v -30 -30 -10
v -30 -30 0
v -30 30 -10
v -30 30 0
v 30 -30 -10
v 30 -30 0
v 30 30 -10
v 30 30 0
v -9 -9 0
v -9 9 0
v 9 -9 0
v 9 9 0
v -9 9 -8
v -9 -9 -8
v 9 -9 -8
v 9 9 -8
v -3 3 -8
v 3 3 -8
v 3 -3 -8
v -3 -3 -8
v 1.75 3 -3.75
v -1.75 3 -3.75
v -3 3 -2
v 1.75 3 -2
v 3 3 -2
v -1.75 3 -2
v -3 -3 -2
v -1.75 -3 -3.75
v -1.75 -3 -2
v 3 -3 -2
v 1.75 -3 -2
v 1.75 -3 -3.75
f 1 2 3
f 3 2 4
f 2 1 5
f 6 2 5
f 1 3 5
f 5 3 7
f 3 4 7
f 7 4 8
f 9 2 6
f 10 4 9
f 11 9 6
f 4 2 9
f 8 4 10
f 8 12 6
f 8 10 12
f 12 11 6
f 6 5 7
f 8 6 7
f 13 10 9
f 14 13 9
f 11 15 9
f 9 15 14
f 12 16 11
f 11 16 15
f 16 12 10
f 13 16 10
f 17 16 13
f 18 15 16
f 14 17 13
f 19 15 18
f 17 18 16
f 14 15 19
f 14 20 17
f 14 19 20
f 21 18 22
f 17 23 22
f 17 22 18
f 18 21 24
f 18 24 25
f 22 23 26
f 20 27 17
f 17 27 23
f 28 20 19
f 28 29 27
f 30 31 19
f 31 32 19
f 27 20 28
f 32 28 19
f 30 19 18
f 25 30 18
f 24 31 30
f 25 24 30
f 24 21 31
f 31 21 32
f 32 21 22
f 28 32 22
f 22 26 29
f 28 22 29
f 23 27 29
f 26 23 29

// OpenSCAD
cube_h = 6;
top_clearance = 2;
feature_w = 3.5;
base_w = cube_h * 10;
base_h = 2*top_clearance+cube_h;
void_w = cube_h * 3;

color("blue")
    mould();
color("red")
    object();

module object()
{
    translate([0,0,-cube_h/2-top_clearance])
    {
        difference()
        {
            cube(cube_h,center=true);
            translate([0,0,cube_h/2])
            cube([feature_w,cube_h*2,feature_w],center=true);
        }
    }
}
module mould()
{
    translate([0,0,-base_h/2])
    difference()
    {
        cube([base_w,base_w,base_h],center=true);
        translate([0,0,-base_h/2+void_w/2+top_clearance])
        cube(void_w,center=true);
    }
}
